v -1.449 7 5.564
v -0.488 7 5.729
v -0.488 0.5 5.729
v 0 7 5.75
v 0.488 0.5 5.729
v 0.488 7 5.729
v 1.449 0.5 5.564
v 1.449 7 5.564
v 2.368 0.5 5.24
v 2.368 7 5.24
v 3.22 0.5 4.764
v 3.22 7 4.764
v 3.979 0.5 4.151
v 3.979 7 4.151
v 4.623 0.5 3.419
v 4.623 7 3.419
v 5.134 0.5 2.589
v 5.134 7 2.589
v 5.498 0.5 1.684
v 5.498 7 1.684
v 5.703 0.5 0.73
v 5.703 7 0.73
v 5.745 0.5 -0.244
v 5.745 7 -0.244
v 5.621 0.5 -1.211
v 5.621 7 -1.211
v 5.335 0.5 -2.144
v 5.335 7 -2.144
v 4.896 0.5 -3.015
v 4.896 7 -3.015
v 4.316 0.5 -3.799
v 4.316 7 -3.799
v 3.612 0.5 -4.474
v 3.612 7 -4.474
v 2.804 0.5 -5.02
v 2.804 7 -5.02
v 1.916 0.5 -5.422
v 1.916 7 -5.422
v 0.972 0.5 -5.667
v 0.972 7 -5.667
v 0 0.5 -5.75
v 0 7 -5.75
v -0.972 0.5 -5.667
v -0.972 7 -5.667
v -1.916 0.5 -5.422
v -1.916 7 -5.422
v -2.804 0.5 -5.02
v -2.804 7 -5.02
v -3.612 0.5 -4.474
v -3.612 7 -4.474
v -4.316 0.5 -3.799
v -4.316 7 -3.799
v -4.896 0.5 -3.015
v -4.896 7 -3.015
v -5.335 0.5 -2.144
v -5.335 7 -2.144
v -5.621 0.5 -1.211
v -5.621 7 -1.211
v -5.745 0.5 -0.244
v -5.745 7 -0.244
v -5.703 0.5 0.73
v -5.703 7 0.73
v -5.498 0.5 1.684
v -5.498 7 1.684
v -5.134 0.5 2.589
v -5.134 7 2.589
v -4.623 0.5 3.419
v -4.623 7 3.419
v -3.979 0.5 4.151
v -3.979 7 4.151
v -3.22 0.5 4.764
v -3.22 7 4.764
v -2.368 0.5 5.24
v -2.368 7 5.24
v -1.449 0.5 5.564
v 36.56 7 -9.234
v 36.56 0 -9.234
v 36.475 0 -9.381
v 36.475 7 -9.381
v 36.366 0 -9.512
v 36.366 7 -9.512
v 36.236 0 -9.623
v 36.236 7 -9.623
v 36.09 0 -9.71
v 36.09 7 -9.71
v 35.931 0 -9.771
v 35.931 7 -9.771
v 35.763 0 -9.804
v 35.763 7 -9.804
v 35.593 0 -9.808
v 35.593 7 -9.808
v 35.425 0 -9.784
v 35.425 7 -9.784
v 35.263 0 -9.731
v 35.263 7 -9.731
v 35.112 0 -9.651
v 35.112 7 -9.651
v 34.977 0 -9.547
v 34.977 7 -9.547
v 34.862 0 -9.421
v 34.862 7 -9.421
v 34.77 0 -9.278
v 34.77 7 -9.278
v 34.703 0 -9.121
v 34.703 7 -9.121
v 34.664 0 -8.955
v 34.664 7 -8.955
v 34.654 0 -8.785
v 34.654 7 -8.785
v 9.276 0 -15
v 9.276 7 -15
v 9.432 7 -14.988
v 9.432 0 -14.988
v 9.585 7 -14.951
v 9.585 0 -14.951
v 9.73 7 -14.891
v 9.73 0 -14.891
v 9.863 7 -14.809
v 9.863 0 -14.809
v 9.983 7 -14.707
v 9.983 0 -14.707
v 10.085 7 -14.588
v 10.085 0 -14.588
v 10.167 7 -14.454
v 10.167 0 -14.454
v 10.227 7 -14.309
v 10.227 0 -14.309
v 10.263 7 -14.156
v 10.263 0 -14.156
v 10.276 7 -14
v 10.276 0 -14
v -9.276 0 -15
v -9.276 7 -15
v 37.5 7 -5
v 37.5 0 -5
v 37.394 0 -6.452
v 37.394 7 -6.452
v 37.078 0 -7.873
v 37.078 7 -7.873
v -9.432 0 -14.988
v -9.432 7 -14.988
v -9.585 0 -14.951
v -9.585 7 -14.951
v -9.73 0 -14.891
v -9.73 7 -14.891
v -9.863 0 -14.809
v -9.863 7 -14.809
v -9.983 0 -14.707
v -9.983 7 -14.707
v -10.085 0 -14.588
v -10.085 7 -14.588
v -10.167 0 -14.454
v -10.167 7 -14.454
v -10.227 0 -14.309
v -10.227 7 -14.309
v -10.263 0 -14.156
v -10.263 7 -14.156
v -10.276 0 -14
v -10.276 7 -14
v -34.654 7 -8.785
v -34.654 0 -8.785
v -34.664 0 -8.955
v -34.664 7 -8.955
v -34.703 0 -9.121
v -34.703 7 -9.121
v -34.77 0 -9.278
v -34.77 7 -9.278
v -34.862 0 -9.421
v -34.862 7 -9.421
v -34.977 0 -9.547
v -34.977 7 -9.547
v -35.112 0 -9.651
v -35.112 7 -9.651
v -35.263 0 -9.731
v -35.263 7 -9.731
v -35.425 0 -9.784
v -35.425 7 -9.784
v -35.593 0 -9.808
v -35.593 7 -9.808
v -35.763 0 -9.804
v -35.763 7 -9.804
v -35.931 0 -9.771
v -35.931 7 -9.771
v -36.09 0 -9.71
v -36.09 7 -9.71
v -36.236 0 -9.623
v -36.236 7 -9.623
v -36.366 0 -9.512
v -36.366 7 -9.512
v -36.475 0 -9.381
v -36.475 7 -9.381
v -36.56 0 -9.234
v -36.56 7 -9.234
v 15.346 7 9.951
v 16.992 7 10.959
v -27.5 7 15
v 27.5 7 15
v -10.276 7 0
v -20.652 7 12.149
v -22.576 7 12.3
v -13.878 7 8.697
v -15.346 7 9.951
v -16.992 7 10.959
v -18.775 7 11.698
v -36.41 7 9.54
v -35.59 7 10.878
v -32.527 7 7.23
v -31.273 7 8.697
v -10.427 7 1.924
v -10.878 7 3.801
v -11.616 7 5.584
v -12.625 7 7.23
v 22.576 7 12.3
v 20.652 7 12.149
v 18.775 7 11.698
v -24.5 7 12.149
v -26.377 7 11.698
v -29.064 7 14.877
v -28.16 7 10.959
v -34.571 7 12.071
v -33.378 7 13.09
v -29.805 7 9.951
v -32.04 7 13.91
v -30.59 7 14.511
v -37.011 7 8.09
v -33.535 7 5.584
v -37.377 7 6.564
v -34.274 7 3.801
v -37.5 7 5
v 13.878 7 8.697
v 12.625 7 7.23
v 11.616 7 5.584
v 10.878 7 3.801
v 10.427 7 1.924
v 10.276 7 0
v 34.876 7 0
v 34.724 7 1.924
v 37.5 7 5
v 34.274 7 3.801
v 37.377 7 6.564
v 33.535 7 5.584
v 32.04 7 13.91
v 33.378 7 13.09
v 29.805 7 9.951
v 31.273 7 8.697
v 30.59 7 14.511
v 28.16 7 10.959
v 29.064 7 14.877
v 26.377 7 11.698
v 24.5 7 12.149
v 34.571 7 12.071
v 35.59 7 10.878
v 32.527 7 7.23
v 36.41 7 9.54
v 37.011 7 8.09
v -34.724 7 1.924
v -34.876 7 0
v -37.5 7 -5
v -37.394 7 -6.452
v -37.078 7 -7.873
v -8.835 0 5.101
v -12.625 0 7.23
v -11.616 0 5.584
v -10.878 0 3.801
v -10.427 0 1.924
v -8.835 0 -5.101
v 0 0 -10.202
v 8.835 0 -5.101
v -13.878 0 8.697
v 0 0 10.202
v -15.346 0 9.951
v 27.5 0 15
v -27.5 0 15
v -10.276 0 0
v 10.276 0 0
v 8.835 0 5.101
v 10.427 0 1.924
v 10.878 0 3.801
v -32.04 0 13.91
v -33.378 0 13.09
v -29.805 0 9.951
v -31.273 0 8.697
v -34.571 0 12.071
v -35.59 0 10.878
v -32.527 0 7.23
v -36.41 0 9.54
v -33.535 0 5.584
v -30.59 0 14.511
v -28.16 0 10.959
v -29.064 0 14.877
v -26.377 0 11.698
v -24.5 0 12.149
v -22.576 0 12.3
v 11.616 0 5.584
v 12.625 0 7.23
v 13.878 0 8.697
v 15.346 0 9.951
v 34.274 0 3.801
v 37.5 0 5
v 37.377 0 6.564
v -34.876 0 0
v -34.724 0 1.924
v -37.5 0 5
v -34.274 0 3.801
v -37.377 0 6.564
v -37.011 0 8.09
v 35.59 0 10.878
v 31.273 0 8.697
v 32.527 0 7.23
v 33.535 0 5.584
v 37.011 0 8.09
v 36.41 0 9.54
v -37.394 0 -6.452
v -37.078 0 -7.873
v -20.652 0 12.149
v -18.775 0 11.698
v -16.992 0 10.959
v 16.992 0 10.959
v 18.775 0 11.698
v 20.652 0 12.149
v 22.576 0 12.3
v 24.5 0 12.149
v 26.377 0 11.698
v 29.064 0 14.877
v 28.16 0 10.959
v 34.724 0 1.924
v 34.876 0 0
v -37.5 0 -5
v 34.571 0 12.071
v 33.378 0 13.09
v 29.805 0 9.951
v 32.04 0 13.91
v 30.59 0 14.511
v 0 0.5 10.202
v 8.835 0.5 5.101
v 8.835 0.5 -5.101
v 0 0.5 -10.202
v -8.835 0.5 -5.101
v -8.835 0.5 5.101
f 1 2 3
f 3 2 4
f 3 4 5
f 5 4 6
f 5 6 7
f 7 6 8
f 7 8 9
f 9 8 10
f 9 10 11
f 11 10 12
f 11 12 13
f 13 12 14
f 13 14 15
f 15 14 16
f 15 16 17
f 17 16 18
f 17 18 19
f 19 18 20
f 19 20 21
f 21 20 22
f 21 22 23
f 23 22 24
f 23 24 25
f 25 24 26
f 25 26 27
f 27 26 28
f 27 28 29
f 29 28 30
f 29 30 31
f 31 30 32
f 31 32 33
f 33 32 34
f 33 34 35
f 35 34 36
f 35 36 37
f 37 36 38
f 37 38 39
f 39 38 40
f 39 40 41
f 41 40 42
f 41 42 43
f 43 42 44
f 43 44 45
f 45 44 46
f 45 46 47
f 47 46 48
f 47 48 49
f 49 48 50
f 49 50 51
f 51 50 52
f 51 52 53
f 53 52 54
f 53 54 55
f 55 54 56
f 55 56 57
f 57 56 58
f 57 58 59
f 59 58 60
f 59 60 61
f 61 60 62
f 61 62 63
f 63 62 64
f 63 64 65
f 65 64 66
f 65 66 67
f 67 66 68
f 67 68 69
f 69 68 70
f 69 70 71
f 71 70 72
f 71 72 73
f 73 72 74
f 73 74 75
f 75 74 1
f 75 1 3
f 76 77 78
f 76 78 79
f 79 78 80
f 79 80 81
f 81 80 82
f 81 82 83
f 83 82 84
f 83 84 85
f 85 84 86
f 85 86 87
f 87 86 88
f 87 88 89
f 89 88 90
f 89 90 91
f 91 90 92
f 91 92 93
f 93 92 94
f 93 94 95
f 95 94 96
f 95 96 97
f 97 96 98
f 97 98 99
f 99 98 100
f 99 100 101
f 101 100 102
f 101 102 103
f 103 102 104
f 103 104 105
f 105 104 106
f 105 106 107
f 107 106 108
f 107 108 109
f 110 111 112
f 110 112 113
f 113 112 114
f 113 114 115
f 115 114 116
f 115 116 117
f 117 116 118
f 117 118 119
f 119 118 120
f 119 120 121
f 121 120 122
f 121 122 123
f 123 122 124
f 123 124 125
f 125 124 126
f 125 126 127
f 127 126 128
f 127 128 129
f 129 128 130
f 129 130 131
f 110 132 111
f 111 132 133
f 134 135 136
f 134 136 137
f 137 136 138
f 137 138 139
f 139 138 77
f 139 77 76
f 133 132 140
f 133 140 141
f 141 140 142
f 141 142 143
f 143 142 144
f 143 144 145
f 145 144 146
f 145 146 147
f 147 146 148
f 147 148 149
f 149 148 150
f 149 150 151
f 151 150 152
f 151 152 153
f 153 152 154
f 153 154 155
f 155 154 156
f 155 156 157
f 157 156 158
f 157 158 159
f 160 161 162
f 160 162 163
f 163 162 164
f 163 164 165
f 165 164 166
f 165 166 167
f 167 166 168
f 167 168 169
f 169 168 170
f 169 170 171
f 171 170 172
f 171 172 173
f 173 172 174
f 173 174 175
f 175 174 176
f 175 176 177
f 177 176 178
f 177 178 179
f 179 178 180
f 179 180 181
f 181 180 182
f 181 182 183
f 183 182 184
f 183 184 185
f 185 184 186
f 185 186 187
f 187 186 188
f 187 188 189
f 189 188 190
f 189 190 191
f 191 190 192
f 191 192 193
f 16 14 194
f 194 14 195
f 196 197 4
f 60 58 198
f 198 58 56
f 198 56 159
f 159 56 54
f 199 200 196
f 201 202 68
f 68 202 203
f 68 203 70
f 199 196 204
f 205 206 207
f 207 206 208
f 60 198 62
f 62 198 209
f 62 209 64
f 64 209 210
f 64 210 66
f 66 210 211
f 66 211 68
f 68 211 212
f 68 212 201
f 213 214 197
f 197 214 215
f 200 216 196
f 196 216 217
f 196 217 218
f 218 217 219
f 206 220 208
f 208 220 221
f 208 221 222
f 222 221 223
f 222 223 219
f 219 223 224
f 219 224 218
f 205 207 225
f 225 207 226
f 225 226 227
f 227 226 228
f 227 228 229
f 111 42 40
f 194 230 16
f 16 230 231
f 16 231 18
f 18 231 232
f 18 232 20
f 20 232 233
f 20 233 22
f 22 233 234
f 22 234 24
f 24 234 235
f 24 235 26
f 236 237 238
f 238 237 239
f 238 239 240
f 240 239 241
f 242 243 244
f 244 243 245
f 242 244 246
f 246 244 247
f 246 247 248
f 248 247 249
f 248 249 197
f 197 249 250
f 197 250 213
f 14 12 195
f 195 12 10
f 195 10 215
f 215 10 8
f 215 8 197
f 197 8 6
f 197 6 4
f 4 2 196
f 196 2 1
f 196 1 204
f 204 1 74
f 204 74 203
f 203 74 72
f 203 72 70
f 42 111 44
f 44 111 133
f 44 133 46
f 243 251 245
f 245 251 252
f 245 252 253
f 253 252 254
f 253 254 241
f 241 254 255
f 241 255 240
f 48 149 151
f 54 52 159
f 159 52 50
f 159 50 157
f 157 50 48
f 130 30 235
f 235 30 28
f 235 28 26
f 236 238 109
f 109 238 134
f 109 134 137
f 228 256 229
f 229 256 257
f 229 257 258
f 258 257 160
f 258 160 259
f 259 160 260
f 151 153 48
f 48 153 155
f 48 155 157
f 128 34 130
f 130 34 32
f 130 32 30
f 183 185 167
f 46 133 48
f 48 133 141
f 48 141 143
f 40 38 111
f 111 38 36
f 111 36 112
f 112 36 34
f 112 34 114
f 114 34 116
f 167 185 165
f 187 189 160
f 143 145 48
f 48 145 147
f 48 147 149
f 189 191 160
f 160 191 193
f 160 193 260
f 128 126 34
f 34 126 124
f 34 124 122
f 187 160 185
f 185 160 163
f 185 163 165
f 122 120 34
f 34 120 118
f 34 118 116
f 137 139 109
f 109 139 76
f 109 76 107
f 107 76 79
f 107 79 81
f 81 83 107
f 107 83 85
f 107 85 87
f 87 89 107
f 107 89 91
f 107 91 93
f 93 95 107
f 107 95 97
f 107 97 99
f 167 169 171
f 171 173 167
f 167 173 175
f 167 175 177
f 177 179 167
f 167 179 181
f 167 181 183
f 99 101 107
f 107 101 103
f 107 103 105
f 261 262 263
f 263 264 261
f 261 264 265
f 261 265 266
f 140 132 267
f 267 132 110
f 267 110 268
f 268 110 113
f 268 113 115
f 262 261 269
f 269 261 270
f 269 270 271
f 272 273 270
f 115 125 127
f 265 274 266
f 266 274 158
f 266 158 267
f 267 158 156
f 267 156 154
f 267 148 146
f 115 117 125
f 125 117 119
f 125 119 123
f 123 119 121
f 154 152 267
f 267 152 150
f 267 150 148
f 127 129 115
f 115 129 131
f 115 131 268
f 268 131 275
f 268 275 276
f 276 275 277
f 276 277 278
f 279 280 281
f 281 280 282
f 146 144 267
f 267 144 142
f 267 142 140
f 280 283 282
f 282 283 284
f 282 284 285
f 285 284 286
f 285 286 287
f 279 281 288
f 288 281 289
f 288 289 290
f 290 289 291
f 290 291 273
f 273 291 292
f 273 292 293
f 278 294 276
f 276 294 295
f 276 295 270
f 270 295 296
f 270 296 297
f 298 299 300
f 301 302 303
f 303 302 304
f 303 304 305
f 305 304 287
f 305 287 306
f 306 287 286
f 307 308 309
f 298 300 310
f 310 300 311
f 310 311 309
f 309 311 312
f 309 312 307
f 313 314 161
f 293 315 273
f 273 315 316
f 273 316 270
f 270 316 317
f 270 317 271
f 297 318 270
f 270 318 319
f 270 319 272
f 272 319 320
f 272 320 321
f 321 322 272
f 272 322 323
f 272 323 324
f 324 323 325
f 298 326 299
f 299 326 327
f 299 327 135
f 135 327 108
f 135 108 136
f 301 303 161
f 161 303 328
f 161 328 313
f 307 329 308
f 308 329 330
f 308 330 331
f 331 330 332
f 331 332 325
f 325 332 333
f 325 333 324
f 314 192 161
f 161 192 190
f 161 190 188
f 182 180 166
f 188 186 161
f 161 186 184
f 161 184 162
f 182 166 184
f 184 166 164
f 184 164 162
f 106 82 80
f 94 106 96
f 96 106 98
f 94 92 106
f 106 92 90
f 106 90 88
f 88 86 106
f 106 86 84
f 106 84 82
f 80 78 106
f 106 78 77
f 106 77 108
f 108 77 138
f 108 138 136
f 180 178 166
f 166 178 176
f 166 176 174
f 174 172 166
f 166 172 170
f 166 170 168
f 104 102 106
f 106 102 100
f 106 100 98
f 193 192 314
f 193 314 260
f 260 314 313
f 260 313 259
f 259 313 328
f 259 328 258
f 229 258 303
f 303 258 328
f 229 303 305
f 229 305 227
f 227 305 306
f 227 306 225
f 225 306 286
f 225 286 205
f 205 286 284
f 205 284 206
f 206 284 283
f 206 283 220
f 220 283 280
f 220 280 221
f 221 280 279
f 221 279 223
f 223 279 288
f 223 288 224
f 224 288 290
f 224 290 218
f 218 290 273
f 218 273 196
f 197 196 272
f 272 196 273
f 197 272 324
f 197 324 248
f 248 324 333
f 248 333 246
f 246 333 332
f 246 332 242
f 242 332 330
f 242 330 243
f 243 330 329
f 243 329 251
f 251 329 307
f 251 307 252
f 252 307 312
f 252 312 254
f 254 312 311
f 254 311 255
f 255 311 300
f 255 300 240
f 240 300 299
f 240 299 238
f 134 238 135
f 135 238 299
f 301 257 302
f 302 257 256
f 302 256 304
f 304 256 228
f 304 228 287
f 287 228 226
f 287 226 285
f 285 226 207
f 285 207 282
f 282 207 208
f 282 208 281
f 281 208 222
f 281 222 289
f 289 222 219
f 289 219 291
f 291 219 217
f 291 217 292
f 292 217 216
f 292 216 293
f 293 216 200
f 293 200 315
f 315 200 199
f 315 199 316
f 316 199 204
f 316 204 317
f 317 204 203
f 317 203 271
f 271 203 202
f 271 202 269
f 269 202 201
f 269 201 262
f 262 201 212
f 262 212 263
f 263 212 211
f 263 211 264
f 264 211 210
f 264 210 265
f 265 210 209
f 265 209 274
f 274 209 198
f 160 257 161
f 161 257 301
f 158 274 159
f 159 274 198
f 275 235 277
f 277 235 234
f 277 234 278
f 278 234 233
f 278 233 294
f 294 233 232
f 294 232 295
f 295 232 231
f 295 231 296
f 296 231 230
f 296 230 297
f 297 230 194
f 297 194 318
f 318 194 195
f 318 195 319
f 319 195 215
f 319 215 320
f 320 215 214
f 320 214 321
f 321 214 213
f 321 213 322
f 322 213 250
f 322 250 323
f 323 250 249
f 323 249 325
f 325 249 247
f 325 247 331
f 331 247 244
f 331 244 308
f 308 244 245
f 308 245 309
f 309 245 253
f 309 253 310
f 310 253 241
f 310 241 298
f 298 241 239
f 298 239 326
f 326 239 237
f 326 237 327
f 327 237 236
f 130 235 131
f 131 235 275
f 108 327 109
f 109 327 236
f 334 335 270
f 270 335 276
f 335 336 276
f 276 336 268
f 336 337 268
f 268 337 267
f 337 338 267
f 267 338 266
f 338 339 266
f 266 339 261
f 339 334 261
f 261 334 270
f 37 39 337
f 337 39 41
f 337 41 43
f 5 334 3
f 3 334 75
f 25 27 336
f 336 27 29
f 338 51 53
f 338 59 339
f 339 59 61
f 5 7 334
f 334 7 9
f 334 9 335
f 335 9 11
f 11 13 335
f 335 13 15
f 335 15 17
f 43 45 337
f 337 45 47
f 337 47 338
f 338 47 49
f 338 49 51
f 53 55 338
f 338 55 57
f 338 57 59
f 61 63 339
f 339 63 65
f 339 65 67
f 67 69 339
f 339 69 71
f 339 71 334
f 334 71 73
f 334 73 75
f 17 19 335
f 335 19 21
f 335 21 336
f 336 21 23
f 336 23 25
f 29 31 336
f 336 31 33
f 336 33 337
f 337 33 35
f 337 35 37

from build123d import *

# Parameters (mm, degrees)
SKETCH1_R           = 5.75
BOSS_EXTRUDE1_DEPTH = 7
CUT_EXTRUDE1_DEPTH  = 7
FILLET1_R           = 1
FILLET2_R           = 1
FILLET3_R           = 1
FILLET4_R           = 1
CUT_EXTRUDE2_DEPTH  = 0.5


with BuildPart() as part:
    # Sketch1 → Boss-Extrude1 (new body)
    with BuildSketch(Plane(origin=(0, 0, 0), x_dir=(1, 0, 0), z_dir=(0, 1, 0))):
        with BuildLine():
            Line((-27.5, -15), (27.5, -15))
            ThreePointArc((27.5, -15), (34.571067812, -12.071067812), (37.5, -5))
            Line((37.5, -5), (37.5, 5))
            ThreePointArc((37.5, 5), (34.571067812, 12.071067812), (27.5, 15))
            Line((27.5, 15), (-27.5, 15))
            ThreePointArc((-27.5, 15), (-34.571067812, 12.071067812), (-37.5, 5))
            Line((-37.5, 5), (-37.5, -5))
            ThreePointArc((-37.5, -5), (-34.571067812, -12.071067812), (-27.5, -15))
        make_face()
        Circle(SKETCH1_R, mode=Mode.SUBTRACT)
    extrude(amount=BOSS_EXTRUDE1_DEPTH)

    # Sketch2 → Cut-Extrude1 (cut)
    with BuildSketch(Plane(origin=(0, 7, 0), x_dir=(1, 0, 0), z_dir=(0, 1, 0))):
        with BuildLine():
            Line((-34.875660829, 0), (-34.571067812, 12.071067812))
            Line((-34.571067812, 12.071067812), (-34.571067812, 15))
            Line((-34.571067812, 15), (-27.5, 15))
            Line((-27.5, 15), (-10.275660829, 15))
            Line((-10.275660829, 15), (-10.275660829, 0))
            ThreePointArc((-10.275660829, 0), (-22.575660829, -12.3), (-34.875660829, 0))
        make_face()
    cut_extrude1 = extrude(amount=-CUT_EXTRUDE1_DEPTH, mode=Mode.SUBTRACT)

    # Fillet1
    fillet1_edges = [part.edges().sort_by_distance(p)[0] for p in [
        (-34.571067812, 3.5, -12.071067812),
    ]]
    fillet(fillet1_edges, radius=FILLET1_R)

    # Fillet2
    fillet2_edges = [part.edges().sort_by_distance(p)[0] for p in [
        (-10.275660829, 3.5, -15),
    ]]
    fillet(fillet2_edges, radius=FILLET2_R)

    # Mirror1: Cut-Extrude1 across plane
    add(cut_extrude1.mirror(Plane.ZY), mode=Mode.SUBTRACT)

    # Fillet3
    fillet3_edges = [part.edges().sort_by_distance(p)[0] for p in [
        (10.275660829, 3.5, -15),
    ]]
    fillet(fillet3_edges, radius=FILLET3_R)

    # Fillet4
    fillet4_edges = [part.edges().sort_by_distance(p)[0] for p in [
        (34.571067812, 3.5, -12.071067812),
    ]]
    fillet(fillet4_edges, radius=FILLET4_R)

    # Sketch3 → Cut-Extrude2 (cut)
    with BuildSketch(Plane.XZ):
        Polygon((0, 10.201614586), (-8.834857391, 5.100807293), (-8.834857391, -5.100807293), (0, -10.201614586), (8.834857391, -5.100807293), (8.834857391, 5.100807293), align=None)
    extrude(amount=-CUT_EXTRUDE2_DEPTH, mode=Mode.SUBTRACT)


solid = part.part
